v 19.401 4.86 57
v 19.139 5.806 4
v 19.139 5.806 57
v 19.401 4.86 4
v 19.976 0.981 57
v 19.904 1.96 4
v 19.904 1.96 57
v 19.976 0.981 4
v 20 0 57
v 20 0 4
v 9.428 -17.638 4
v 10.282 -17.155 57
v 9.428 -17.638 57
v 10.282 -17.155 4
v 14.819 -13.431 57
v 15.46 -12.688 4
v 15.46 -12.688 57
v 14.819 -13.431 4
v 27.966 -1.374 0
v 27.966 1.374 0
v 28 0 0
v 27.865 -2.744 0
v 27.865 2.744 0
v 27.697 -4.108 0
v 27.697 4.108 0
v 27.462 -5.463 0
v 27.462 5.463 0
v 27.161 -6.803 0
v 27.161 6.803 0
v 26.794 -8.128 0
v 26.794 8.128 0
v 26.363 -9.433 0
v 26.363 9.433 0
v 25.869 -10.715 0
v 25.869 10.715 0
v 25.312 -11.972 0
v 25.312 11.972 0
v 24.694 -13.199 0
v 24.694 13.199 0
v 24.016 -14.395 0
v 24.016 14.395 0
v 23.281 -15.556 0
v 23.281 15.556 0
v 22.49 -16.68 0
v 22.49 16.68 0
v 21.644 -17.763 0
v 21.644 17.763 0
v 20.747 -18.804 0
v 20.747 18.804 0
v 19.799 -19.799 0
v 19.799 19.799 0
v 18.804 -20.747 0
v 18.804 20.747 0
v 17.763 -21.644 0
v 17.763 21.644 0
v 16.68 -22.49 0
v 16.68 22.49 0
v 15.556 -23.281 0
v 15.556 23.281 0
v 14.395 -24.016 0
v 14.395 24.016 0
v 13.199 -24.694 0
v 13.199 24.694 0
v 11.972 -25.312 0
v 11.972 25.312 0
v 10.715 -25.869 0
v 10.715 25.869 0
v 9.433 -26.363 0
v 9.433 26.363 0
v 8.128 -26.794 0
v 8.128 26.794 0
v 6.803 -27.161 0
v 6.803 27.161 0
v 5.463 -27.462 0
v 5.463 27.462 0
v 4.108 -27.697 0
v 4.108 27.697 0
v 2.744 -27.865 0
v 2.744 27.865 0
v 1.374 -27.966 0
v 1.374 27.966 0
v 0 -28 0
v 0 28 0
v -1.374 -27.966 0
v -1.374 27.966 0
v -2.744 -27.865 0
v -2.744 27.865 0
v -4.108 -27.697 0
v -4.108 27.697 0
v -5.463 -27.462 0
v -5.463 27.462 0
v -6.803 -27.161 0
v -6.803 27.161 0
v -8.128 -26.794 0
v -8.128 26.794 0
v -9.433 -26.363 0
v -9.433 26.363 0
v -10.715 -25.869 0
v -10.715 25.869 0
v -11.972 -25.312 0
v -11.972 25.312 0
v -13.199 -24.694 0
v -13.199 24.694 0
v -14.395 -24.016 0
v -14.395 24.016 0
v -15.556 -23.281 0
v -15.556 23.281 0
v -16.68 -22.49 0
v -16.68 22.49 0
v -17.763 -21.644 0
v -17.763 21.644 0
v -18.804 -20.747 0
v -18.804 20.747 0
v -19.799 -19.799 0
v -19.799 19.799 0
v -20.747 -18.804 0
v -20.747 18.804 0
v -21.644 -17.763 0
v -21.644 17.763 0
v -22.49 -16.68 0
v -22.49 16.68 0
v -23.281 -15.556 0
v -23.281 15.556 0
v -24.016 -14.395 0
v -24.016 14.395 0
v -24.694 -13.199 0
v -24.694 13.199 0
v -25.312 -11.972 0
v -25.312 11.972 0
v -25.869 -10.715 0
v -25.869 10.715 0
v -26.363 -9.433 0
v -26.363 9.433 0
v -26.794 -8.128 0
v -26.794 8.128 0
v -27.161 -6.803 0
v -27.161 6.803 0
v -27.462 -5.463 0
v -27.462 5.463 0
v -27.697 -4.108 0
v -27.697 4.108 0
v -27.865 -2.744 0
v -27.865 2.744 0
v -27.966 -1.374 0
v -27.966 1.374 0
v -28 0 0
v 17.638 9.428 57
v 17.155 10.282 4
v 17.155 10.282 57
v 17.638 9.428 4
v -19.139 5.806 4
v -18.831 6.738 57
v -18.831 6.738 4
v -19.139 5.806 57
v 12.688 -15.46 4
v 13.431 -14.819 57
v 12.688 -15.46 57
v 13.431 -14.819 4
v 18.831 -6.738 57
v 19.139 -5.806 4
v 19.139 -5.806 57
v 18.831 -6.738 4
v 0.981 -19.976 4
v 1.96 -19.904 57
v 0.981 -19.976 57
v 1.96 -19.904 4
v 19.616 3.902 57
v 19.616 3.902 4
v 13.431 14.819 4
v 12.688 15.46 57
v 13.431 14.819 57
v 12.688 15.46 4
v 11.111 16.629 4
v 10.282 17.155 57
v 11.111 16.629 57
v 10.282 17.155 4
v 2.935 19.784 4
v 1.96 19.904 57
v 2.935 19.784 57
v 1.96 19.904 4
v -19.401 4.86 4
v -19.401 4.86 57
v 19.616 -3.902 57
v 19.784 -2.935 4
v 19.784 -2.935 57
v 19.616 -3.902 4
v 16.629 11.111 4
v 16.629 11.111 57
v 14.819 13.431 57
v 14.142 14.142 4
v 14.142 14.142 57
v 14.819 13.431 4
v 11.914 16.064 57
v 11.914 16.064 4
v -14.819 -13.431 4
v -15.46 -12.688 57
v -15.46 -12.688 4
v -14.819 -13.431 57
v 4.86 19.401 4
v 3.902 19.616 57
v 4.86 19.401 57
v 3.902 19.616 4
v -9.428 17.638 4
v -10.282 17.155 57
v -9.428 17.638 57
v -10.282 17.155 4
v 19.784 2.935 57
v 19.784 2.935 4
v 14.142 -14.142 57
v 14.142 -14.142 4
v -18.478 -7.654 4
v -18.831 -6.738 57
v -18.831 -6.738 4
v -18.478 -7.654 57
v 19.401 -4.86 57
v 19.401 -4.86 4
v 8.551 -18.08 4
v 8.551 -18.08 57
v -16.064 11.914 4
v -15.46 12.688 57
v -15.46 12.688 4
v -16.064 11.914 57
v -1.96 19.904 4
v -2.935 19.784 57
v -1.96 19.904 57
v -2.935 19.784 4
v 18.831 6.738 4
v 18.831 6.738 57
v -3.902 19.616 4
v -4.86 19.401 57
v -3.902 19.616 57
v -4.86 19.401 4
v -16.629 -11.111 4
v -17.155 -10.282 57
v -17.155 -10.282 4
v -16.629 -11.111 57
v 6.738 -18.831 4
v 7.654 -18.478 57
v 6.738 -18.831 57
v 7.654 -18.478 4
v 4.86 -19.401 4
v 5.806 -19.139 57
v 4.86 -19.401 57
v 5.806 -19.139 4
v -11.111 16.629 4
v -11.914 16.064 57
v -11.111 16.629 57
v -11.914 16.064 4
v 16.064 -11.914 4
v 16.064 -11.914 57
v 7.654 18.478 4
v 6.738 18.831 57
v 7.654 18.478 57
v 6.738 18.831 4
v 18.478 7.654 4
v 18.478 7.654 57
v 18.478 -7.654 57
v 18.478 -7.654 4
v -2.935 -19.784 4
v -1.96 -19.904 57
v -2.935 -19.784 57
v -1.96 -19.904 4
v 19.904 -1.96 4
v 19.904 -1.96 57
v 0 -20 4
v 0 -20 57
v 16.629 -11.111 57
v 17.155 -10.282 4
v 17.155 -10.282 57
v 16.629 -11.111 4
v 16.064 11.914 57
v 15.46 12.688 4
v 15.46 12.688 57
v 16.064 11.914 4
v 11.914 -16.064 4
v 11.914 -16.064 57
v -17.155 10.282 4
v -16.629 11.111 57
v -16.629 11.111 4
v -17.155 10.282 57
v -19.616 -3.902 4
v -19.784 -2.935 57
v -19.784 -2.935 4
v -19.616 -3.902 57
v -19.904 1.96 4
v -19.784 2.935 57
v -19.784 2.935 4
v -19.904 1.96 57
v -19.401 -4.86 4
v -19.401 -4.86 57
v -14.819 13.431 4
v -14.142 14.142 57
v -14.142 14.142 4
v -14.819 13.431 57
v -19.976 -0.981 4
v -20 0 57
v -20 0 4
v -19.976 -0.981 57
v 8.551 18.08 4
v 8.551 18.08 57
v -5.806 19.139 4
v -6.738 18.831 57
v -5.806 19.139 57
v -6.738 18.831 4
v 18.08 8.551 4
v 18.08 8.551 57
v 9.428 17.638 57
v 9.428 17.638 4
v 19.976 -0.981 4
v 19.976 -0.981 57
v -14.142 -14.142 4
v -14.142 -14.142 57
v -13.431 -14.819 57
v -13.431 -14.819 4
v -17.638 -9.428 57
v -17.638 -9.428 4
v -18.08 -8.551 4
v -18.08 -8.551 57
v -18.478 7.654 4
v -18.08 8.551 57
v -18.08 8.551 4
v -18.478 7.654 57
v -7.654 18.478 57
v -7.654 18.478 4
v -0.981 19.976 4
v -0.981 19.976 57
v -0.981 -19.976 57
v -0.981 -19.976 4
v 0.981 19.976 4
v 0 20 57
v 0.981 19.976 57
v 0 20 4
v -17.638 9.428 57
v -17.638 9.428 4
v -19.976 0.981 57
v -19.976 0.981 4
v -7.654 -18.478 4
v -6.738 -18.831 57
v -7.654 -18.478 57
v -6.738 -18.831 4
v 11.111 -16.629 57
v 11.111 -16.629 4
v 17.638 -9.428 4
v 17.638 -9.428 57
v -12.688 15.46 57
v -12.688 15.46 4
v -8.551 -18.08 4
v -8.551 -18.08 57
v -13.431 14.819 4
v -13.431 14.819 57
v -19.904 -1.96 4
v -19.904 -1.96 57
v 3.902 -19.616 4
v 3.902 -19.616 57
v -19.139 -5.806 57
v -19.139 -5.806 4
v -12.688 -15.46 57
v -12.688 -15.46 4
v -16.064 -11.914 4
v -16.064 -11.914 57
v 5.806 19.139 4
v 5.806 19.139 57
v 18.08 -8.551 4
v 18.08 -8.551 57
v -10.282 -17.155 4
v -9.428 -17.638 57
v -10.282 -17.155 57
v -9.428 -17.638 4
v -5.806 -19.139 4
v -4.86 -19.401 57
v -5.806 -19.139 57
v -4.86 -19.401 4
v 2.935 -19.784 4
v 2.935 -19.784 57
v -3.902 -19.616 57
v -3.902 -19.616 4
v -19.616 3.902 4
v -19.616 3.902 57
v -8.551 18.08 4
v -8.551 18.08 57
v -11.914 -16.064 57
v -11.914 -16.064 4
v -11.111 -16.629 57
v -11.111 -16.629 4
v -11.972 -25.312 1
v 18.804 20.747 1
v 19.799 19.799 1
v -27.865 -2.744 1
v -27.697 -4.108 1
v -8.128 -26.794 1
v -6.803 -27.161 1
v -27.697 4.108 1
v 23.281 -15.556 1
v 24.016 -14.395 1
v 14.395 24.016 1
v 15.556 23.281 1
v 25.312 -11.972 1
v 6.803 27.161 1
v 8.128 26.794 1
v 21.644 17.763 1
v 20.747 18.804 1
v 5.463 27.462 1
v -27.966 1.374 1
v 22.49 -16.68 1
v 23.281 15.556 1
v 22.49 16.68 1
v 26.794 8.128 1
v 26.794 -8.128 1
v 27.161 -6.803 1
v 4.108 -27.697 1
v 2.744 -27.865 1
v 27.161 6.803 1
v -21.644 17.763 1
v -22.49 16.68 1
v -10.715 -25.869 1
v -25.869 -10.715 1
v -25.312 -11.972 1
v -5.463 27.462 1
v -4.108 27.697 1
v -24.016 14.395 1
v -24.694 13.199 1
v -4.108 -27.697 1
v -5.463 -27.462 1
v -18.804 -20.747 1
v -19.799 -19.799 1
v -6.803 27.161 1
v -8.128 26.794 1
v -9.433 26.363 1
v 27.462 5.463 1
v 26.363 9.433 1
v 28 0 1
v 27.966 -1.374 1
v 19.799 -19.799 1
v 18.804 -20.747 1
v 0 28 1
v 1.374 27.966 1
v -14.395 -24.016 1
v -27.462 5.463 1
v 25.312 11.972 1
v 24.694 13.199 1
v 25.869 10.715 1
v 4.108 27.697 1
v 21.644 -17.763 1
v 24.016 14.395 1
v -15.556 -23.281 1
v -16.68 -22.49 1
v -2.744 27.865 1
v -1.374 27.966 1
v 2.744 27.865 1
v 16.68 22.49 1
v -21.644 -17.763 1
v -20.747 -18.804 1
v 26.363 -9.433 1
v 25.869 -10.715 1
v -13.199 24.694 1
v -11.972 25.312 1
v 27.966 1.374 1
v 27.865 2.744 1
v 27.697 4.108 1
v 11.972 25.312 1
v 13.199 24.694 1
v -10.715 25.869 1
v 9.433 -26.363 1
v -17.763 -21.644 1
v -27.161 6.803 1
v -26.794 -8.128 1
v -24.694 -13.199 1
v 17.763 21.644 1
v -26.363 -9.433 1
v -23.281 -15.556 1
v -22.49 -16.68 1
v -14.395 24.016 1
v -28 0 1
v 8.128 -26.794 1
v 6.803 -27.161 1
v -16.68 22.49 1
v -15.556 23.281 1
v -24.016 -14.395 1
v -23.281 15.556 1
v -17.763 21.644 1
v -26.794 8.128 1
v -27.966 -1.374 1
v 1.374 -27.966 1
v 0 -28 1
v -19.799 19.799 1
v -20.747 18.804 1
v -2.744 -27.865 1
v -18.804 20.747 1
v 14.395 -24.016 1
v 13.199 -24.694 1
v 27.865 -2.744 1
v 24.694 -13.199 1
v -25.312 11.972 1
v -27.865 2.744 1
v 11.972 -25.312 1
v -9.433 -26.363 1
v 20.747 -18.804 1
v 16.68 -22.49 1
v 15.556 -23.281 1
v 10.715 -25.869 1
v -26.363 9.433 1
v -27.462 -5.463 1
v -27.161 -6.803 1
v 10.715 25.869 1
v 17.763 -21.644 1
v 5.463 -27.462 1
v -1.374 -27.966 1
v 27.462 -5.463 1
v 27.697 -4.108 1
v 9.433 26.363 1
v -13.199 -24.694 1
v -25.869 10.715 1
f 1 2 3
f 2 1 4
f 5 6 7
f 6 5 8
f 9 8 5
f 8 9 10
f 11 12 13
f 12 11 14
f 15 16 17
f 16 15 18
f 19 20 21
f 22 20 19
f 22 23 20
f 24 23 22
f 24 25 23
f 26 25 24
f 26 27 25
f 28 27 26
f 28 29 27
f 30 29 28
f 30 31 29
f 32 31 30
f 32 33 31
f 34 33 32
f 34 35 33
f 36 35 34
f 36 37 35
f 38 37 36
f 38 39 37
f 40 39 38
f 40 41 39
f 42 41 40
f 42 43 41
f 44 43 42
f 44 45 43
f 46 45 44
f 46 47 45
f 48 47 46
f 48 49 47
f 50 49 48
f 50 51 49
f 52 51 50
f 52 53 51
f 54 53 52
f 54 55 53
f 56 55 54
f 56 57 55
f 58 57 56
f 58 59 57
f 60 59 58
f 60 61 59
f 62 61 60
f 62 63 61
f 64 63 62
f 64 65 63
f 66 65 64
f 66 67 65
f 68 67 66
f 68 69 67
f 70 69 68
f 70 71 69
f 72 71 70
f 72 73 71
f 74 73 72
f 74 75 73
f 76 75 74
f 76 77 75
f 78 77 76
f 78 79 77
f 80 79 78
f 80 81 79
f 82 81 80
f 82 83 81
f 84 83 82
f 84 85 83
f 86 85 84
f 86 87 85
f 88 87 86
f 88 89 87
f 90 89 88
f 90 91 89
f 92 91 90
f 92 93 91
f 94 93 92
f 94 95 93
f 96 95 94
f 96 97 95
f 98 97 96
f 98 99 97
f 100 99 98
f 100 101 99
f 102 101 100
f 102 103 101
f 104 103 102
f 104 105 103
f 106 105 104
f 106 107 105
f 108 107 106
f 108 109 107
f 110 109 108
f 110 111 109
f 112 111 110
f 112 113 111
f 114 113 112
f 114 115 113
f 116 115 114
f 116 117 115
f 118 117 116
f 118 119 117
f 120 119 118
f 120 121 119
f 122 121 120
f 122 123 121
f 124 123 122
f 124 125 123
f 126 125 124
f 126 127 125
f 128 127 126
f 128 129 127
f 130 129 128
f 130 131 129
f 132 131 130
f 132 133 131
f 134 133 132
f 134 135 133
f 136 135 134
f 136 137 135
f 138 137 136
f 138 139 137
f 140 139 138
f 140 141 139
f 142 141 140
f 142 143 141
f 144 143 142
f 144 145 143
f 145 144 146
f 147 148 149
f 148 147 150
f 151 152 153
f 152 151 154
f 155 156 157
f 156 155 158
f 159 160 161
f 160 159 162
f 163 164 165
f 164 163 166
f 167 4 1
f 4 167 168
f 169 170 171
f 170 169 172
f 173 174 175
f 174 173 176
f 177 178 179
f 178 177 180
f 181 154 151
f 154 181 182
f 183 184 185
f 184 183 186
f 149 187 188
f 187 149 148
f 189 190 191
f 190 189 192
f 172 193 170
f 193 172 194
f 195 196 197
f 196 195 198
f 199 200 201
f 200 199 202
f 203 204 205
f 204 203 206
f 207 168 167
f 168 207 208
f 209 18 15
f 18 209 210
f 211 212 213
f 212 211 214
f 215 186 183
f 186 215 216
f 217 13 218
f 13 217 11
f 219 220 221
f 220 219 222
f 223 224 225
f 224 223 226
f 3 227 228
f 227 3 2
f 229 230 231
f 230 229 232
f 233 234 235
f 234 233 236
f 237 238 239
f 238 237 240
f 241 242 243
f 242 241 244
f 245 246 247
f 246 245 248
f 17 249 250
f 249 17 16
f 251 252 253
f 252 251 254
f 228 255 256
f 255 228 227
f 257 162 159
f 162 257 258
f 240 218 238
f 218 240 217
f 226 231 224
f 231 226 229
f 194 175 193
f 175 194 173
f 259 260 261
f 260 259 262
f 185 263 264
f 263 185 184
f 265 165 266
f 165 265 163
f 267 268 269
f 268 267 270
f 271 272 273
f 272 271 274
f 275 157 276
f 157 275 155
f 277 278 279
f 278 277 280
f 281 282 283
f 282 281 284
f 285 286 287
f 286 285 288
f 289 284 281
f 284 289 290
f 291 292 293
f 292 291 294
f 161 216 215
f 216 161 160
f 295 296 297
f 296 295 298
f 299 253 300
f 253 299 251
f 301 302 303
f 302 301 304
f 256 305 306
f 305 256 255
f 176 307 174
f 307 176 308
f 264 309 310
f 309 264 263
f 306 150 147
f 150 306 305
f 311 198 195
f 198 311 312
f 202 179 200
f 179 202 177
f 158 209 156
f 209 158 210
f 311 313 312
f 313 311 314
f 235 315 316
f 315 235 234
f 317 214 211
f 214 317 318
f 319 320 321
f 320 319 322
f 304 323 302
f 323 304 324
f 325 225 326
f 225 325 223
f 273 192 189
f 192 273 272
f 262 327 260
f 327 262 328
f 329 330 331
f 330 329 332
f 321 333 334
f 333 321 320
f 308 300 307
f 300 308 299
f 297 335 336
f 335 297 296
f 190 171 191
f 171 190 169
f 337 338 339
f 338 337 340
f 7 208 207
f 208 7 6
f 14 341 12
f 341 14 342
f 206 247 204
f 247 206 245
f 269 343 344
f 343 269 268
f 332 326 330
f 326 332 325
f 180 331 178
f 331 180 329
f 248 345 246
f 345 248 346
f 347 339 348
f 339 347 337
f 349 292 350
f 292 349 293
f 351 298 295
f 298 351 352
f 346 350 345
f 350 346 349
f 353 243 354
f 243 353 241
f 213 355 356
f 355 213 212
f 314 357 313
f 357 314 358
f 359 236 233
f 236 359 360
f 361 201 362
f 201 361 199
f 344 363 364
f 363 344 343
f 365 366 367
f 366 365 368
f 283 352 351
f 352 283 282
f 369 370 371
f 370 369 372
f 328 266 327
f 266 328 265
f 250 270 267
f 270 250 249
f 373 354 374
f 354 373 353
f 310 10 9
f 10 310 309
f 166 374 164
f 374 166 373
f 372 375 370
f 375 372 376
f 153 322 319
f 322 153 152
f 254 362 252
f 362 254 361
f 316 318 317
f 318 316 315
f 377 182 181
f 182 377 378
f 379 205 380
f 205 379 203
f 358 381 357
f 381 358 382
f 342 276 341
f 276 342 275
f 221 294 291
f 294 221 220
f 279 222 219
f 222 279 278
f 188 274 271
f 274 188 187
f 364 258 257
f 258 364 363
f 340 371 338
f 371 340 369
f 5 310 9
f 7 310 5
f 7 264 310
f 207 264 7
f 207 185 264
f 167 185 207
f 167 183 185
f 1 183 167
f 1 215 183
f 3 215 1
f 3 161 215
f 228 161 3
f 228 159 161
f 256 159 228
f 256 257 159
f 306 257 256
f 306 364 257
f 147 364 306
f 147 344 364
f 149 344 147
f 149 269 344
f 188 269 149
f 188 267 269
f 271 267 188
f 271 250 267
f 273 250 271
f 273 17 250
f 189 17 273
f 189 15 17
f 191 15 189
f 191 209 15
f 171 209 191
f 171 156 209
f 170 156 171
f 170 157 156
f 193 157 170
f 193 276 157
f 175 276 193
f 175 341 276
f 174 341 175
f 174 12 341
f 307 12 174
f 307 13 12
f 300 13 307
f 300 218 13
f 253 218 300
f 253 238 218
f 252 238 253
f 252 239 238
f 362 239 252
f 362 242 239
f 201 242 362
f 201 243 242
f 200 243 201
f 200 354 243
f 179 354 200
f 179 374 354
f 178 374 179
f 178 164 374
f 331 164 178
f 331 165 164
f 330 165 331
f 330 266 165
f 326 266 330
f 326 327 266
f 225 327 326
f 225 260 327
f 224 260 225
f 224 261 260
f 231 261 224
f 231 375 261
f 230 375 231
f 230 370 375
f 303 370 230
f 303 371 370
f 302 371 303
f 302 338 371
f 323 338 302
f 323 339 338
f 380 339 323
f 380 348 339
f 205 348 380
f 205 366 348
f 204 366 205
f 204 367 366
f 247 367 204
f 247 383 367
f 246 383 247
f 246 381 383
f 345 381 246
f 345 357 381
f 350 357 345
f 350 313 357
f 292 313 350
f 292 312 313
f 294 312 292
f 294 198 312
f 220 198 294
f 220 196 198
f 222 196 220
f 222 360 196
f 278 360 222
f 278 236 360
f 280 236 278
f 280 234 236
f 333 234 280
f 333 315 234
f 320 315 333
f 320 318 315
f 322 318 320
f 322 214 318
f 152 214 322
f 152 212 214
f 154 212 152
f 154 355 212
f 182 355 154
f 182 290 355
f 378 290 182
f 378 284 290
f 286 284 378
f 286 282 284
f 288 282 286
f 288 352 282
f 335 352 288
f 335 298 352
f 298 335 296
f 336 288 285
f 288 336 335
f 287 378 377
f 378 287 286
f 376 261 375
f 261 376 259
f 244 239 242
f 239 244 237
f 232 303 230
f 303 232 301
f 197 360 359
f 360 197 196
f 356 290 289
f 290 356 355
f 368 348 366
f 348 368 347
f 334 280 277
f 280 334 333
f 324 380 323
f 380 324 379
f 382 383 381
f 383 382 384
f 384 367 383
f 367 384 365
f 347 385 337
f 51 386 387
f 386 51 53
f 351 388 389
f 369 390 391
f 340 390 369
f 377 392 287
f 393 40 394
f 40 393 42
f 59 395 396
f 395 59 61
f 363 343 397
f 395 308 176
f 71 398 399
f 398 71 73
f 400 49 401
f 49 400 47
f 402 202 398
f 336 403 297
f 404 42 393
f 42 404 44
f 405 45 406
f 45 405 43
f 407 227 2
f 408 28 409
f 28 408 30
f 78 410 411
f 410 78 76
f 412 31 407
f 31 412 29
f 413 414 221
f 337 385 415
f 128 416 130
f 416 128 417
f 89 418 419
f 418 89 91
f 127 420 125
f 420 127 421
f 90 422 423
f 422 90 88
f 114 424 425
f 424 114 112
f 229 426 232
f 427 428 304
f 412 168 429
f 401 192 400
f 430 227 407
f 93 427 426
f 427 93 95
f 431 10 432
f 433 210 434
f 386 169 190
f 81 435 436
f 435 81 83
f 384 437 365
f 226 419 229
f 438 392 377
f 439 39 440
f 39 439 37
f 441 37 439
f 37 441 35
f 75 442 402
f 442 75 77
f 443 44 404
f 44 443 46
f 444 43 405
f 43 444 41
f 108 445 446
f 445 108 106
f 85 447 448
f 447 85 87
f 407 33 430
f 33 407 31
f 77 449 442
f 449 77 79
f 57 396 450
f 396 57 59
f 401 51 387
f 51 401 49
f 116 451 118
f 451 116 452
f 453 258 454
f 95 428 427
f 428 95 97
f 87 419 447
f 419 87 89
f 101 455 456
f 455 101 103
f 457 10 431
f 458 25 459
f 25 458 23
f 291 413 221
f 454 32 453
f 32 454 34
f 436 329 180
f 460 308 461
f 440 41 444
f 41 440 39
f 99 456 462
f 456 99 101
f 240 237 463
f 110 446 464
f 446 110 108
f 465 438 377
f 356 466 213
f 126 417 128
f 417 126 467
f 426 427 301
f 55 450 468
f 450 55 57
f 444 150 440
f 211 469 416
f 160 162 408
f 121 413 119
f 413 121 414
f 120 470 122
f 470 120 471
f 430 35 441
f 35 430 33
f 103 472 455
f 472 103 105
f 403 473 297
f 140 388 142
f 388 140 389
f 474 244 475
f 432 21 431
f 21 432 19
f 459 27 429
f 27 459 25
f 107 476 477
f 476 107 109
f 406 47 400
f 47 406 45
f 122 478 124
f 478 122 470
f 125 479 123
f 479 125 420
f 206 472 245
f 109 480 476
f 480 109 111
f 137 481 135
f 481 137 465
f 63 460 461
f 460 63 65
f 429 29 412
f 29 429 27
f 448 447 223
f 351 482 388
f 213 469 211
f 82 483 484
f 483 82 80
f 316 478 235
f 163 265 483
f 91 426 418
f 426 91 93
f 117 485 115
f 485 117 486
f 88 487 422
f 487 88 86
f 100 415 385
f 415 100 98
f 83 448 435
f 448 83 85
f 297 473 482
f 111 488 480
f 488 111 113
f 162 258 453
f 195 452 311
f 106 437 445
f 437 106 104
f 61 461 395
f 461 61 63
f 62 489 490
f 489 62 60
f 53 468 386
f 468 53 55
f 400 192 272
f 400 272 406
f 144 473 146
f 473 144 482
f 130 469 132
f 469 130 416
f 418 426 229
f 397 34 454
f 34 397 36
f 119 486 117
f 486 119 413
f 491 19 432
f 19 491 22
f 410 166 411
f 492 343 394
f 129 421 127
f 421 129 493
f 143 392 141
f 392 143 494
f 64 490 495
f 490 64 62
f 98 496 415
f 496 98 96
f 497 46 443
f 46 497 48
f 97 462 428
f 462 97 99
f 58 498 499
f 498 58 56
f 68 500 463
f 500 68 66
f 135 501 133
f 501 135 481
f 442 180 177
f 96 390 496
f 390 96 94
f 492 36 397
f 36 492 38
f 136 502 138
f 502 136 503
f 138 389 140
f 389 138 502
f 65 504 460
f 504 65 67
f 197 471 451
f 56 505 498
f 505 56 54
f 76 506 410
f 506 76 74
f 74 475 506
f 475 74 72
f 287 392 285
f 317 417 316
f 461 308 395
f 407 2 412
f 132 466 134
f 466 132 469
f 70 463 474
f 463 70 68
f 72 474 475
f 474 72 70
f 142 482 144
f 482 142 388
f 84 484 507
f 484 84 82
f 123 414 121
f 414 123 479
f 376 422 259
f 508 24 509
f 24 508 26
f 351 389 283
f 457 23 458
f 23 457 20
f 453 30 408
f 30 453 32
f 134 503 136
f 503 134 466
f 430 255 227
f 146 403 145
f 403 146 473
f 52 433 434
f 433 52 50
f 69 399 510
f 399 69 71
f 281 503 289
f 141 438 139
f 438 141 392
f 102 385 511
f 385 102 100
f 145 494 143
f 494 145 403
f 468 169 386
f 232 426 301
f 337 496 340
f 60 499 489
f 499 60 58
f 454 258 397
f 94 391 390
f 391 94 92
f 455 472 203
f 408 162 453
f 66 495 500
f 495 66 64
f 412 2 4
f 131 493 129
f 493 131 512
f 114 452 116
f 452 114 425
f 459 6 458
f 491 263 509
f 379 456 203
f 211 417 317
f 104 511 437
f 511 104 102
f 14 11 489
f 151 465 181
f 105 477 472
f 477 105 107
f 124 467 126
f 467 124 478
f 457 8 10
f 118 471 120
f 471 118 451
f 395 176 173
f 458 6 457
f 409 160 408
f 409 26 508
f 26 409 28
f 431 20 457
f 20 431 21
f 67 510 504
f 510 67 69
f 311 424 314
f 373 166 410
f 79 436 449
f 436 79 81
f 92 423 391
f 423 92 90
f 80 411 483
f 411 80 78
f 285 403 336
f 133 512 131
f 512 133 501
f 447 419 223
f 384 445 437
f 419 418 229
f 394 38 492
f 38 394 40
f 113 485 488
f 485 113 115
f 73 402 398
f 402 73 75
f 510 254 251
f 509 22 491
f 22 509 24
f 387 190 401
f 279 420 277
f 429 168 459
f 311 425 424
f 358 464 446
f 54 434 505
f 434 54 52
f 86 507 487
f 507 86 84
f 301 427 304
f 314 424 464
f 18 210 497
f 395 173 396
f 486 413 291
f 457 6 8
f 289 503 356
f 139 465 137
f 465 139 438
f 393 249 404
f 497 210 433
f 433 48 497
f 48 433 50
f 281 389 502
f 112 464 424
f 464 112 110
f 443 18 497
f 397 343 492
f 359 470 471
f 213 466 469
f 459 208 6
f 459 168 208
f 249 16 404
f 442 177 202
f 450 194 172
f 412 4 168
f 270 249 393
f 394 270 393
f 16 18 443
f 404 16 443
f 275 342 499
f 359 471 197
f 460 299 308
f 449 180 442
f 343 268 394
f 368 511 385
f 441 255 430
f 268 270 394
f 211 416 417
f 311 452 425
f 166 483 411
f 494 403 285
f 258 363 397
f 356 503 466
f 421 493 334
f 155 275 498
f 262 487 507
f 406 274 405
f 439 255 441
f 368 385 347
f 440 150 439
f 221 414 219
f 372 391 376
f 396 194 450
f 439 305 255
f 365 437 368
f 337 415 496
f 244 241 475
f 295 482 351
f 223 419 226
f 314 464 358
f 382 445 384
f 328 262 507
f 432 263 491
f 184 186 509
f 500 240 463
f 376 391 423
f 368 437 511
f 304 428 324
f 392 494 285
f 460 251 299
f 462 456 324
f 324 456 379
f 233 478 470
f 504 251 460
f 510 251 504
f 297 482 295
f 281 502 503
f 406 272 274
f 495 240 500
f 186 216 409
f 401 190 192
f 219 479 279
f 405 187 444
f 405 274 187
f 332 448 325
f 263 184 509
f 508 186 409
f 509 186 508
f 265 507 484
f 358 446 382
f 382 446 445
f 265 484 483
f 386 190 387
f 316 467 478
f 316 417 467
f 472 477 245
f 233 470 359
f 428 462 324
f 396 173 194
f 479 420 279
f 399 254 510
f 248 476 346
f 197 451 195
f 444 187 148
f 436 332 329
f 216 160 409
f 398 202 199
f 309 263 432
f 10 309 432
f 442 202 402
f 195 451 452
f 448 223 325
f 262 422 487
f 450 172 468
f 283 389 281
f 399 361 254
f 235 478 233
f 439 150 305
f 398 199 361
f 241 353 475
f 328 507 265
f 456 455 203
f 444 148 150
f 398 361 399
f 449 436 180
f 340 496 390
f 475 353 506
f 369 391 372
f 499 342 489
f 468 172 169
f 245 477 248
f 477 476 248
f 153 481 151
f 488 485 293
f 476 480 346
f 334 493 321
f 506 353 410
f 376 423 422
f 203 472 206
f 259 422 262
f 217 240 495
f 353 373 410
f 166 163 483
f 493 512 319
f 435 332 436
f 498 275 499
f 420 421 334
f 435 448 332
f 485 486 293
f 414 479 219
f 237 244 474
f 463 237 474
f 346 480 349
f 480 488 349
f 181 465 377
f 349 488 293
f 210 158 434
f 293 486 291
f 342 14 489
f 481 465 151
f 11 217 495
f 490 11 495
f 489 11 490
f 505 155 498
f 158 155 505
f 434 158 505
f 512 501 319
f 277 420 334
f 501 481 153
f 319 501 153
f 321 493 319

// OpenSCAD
$fn=128;
cylinder(d=40,h=60-3);
hull(){
translate([0,0,3])
cylinder(d=40,h=1);
cylinder(d=56,h=1);
}
